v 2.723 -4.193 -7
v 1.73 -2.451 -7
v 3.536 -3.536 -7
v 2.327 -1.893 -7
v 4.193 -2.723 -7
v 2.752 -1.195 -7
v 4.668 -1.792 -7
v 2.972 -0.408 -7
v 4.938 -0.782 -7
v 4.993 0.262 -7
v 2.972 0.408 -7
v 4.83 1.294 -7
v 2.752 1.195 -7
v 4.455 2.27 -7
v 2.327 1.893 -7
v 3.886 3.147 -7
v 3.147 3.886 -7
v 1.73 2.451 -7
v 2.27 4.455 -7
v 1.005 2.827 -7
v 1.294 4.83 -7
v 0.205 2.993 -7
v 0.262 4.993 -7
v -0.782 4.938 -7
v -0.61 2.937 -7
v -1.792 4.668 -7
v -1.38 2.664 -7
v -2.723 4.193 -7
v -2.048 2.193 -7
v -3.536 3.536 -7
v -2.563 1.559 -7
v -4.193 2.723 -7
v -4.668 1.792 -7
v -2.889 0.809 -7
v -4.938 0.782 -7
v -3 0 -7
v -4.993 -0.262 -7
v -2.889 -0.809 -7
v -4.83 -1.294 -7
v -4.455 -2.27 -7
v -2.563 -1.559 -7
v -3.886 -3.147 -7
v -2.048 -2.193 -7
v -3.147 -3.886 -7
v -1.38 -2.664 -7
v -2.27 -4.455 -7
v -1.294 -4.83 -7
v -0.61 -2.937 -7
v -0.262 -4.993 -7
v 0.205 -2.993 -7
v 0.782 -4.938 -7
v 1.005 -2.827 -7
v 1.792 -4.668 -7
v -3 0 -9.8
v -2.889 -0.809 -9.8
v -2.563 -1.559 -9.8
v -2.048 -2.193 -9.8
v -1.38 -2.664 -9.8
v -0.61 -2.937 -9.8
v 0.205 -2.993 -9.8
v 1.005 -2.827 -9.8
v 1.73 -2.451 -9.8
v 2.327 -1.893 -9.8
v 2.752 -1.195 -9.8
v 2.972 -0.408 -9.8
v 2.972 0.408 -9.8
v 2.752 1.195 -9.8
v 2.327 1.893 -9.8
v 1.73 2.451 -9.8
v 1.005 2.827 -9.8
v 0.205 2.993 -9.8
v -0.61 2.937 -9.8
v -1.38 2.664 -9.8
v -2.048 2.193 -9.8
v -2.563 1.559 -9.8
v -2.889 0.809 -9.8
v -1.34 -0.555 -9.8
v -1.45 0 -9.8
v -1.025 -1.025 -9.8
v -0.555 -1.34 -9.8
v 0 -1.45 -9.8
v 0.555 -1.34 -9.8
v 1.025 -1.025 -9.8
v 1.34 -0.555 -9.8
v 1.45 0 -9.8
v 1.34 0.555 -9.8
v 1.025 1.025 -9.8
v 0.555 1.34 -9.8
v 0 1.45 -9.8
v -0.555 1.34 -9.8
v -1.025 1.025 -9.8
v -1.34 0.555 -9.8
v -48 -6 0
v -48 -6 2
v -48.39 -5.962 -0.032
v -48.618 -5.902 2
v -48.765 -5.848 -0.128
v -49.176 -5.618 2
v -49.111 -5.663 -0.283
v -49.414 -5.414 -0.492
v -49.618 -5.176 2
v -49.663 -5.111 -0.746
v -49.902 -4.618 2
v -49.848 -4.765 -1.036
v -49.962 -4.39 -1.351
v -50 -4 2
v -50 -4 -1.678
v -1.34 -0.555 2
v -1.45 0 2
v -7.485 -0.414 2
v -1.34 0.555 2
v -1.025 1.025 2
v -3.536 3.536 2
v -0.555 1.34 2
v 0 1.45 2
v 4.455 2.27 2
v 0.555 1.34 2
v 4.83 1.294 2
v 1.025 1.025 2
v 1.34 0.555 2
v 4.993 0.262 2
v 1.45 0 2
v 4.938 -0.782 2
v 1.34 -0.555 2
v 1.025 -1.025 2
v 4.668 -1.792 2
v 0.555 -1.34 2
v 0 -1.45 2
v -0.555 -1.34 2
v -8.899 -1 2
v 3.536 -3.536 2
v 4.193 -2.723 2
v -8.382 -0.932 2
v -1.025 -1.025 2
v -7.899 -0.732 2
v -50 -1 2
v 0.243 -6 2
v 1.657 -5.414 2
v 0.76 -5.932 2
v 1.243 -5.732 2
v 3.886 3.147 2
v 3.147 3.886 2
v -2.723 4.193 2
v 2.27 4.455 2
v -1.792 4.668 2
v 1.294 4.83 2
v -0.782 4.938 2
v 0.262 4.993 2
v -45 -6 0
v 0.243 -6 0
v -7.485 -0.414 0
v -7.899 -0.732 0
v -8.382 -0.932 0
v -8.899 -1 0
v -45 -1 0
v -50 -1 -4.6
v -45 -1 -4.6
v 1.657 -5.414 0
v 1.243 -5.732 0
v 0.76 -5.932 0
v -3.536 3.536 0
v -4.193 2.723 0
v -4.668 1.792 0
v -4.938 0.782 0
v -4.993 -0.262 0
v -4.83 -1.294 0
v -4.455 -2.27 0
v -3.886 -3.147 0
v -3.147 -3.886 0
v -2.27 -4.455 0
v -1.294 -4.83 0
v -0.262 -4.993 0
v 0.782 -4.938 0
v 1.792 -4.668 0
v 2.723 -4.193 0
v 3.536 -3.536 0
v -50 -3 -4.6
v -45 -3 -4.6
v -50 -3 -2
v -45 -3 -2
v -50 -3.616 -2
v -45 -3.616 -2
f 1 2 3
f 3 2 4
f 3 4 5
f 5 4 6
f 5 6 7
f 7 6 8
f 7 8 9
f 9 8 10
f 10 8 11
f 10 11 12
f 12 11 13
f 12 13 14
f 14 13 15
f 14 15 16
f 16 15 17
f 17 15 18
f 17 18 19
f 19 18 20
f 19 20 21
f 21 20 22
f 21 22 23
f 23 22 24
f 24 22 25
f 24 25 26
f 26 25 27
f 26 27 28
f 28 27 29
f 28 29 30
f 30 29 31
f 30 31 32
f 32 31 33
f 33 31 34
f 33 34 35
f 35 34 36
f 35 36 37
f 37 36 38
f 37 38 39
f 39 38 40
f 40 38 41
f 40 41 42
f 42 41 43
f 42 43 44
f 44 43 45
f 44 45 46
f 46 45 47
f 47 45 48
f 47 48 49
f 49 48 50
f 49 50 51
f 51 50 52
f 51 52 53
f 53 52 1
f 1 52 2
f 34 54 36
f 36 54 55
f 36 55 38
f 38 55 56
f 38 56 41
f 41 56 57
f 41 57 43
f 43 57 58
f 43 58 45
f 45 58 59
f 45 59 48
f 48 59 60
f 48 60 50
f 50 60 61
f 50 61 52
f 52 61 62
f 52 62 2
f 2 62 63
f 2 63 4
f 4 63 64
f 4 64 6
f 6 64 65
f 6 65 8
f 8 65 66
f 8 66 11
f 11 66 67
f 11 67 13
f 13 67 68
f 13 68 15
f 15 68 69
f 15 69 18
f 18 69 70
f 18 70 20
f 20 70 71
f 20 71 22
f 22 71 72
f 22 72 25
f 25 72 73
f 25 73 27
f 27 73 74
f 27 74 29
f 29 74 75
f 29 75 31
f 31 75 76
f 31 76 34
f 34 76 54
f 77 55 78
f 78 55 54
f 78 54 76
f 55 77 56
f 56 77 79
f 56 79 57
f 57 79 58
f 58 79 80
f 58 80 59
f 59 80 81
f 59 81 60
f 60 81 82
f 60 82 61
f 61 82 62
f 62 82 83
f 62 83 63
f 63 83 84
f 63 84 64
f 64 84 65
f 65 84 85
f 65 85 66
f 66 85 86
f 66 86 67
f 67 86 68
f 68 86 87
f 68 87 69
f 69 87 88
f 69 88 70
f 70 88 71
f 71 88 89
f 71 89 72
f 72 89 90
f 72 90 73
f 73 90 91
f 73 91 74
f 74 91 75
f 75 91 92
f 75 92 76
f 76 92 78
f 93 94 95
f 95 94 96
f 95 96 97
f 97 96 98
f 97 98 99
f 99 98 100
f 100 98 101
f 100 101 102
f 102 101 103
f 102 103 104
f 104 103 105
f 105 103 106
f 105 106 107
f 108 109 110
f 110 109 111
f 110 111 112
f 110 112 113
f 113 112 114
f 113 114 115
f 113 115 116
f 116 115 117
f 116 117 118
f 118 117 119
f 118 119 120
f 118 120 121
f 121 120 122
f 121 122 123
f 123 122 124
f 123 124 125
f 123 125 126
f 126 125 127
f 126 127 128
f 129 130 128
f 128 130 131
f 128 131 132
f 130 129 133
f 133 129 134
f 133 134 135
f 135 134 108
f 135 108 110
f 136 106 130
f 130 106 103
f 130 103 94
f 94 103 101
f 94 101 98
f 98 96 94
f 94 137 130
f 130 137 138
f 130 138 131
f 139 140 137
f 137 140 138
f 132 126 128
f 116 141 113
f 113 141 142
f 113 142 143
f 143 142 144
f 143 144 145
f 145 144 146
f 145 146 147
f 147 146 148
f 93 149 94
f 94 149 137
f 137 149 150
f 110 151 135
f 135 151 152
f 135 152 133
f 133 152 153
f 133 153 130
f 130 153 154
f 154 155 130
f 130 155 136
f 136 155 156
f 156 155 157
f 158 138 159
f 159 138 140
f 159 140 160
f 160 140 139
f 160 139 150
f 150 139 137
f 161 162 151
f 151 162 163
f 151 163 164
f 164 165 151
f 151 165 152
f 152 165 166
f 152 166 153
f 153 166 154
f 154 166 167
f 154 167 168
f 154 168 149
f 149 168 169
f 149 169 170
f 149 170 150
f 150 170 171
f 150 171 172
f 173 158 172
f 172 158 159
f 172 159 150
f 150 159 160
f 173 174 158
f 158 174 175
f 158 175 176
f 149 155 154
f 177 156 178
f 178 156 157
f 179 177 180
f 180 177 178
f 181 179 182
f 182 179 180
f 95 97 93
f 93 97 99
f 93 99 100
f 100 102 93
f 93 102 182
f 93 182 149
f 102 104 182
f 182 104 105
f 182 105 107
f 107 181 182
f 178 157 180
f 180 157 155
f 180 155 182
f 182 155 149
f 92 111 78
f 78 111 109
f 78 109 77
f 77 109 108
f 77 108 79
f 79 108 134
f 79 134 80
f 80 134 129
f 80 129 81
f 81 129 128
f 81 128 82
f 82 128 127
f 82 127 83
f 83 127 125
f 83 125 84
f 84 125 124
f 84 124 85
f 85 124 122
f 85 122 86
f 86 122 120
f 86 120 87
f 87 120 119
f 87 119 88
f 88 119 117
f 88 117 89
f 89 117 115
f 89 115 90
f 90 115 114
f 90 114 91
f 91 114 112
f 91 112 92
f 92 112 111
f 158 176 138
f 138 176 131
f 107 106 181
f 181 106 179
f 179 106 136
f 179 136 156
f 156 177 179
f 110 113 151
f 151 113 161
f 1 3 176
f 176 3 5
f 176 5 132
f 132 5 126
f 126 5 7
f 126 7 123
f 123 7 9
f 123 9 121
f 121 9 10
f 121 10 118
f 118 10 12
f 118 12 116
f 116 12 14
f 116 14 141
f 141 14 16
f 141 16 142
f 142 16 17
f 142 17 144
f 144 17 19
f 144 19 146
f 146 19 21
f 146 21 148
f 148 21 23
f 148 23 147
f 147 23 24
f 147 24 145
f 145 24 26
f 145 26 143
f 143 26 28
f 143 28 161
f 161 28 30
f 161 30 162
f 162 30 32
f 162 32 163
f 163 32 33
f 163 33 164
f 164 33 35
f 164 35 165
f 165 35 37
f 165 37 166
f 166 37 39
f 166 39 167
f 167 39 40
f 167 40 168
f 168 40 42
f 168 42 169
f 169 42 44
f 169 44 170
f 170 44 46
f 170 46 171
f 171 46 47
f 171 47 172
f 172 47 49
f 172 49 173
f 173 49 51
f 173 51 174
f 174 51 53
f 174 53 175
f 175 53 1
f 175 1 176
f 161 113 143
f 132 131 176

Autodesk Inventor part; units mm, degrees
ref_plane "YZ Plane" through (0, 0, 0) normal (1, 0, 0) x (0, 1, 0)
ref_plane "XZ Plane" through (0, 0, 0) normal (0, 1, 0) x (-1, 0, 0)
ref_plane "XY Plane" through (0, 0, 0) normal (0, 0, 1) x (1, 0, 0)
sketch "Skizze1" plane through (0, 0, 0) normal (0, 0, 1) x (1, 0, 0)
  line L0 (0, 9.6853) -> (0, -8.6142) projected
  line L1 (-61.4142, 0) -> (18.4853, 0) projected
  arc A0 (3.5355, -3.5355) -> (-3.5355, 3.5355) centre (0, 0) ccw
  line L2 (-8.0711, -1) -> (-50, -1)
  line L3 (-50, -1) -> (-50, -6)
  line L4 (-50, -6) -> (1.0711, -6)
  line L5 (3.5355, -3.5355) -> (1.0711, -6)
  line L6 (-8.0711, -1) -> (-3.5355, 3.5355)
  dimension "d1" = 5
  dimension "d2" = 1
  dimension "d3" = 5
  dimension "d21" = 50
  dimension "d22" = 45
extrude "Extrusion1" add sketch "Skizze1" along normal blind 2
sketch "Skizze2" plane through (0, 0, 0) normal (0, 0, 1) x (1, 0, 0)
  point P0 (0, 0)
  point P1 (0, 0)
hole "Bohrung1" at (0, 0, 0) direction (0, 0, 1) diameter 2.9 end through all
sketch "Skizze5" plane through (-50, -6, 0) normal (-1, 0, 0) x (0, 0, 1)
  line L0 (0, 5) -> (0, 0) projected
  line L1 (0, 0) -> (2, 0) projected
  line L2 (2, 5) -> (2, 0) projected
  line L3 (0, 5) -> (2, 5) projected
  line L4 (0, 0) -> (2, 0) projected
  line L5 (0, 0) -> (-2, 2.3835)
  line L6 (-2, 2.3835) -> (-2, 3)
  line L7 (0, 5) -> (0, 0) projected
  line L8 (0, 0) -> (0, 5)
  line L9 (-2, 3) -> (-4.6, 3)
  line L10 (-4.6, 3) -> (-4.6, 5)
  line L11 (-4.6, 5) -> (0, 5)
  point P0 (0, 6)
  dimension "d23" = 40
  dimension "d28" = 3
  dimension "d29" = 2
  dimension "d30" = 4.6
extrude "Extrusion4" add sketch "Skizze5" against normal blind 5 contours L0 L5 L6 L9 L10 L11
fillet "Rundung1" radius 2 3 edges at (1.0711, -6, 1) (-8.0711, -1, 1) (-50, -6, 1)
sketch "Skizze8" plane through (0, 0, 0) normal (0, 0, -1) x (-1, 0, 0)
  circle A0 centre (0, 0) radius 5
  arc A1 (3.5355, 3.5355) -> (-3.5355, -3.5355) centre (0, 0) ccw projected
  circle A2 centre (0, 0) radius 1.45 projected
  circle A3 centre (0, 0) radius 3
  dimension "d41" = 6
extrude "Extrusion7" add sketch "Skizze8" along normal blind 9.8 contours A3
sketch "Skizze6" plane through (0, 0, -9.8) normal (0, 0, -1) x (-1, 0, 0)
  circle A0 centre (0, 0) radius 1.5
  circle A1 centre (0, 0) radius 1.45 projected
  circle A2 centre (0, 0) radius 1.45 projected
  dimension "d32" = 3
extrude "Extrusion5" [suppressed]
sketch "Skizze7" plane through (0, 0, -12.2) normal (0, 0, -1) x (-1, 0, 0)
  line L0 (0.2, 2) -> (-0.2, 2)
  line L1 (-0.2, 2) -> (-0.2, -2)
  line L2 (-0.2, -2) -> (0.2, -2)
  line L3 (0.2, -2) -> (0.2, 2)
  line L4 (0.2, 2) -> (-0.2, -2) construction
  line L5 (-0.2, 2) -> (0.2, -2) construction
  point P0 (0, 0)
  dimension "d35" = 0.4
  dimension "d36" = 4
extrude "Extrusion6" [suppressed]
sketch "Skizze9" plane through (0, 0, 0) normal (0, 0, -1) x (-1, 0, 0)
  arc A0 (3.5355, 3.5355) -> (-3.5355, -3.5355) centre (0, 0) ccw projected
  circle A1 centre (0, 0) radius 5
  circle A2 centre (0, 0) radius 3 projected
  point P0 (3.5355, 3.5355)
extrude "Extrusion8" add sketch "Skizze9" along normal blind 7
properties part number "Akkusperre"
